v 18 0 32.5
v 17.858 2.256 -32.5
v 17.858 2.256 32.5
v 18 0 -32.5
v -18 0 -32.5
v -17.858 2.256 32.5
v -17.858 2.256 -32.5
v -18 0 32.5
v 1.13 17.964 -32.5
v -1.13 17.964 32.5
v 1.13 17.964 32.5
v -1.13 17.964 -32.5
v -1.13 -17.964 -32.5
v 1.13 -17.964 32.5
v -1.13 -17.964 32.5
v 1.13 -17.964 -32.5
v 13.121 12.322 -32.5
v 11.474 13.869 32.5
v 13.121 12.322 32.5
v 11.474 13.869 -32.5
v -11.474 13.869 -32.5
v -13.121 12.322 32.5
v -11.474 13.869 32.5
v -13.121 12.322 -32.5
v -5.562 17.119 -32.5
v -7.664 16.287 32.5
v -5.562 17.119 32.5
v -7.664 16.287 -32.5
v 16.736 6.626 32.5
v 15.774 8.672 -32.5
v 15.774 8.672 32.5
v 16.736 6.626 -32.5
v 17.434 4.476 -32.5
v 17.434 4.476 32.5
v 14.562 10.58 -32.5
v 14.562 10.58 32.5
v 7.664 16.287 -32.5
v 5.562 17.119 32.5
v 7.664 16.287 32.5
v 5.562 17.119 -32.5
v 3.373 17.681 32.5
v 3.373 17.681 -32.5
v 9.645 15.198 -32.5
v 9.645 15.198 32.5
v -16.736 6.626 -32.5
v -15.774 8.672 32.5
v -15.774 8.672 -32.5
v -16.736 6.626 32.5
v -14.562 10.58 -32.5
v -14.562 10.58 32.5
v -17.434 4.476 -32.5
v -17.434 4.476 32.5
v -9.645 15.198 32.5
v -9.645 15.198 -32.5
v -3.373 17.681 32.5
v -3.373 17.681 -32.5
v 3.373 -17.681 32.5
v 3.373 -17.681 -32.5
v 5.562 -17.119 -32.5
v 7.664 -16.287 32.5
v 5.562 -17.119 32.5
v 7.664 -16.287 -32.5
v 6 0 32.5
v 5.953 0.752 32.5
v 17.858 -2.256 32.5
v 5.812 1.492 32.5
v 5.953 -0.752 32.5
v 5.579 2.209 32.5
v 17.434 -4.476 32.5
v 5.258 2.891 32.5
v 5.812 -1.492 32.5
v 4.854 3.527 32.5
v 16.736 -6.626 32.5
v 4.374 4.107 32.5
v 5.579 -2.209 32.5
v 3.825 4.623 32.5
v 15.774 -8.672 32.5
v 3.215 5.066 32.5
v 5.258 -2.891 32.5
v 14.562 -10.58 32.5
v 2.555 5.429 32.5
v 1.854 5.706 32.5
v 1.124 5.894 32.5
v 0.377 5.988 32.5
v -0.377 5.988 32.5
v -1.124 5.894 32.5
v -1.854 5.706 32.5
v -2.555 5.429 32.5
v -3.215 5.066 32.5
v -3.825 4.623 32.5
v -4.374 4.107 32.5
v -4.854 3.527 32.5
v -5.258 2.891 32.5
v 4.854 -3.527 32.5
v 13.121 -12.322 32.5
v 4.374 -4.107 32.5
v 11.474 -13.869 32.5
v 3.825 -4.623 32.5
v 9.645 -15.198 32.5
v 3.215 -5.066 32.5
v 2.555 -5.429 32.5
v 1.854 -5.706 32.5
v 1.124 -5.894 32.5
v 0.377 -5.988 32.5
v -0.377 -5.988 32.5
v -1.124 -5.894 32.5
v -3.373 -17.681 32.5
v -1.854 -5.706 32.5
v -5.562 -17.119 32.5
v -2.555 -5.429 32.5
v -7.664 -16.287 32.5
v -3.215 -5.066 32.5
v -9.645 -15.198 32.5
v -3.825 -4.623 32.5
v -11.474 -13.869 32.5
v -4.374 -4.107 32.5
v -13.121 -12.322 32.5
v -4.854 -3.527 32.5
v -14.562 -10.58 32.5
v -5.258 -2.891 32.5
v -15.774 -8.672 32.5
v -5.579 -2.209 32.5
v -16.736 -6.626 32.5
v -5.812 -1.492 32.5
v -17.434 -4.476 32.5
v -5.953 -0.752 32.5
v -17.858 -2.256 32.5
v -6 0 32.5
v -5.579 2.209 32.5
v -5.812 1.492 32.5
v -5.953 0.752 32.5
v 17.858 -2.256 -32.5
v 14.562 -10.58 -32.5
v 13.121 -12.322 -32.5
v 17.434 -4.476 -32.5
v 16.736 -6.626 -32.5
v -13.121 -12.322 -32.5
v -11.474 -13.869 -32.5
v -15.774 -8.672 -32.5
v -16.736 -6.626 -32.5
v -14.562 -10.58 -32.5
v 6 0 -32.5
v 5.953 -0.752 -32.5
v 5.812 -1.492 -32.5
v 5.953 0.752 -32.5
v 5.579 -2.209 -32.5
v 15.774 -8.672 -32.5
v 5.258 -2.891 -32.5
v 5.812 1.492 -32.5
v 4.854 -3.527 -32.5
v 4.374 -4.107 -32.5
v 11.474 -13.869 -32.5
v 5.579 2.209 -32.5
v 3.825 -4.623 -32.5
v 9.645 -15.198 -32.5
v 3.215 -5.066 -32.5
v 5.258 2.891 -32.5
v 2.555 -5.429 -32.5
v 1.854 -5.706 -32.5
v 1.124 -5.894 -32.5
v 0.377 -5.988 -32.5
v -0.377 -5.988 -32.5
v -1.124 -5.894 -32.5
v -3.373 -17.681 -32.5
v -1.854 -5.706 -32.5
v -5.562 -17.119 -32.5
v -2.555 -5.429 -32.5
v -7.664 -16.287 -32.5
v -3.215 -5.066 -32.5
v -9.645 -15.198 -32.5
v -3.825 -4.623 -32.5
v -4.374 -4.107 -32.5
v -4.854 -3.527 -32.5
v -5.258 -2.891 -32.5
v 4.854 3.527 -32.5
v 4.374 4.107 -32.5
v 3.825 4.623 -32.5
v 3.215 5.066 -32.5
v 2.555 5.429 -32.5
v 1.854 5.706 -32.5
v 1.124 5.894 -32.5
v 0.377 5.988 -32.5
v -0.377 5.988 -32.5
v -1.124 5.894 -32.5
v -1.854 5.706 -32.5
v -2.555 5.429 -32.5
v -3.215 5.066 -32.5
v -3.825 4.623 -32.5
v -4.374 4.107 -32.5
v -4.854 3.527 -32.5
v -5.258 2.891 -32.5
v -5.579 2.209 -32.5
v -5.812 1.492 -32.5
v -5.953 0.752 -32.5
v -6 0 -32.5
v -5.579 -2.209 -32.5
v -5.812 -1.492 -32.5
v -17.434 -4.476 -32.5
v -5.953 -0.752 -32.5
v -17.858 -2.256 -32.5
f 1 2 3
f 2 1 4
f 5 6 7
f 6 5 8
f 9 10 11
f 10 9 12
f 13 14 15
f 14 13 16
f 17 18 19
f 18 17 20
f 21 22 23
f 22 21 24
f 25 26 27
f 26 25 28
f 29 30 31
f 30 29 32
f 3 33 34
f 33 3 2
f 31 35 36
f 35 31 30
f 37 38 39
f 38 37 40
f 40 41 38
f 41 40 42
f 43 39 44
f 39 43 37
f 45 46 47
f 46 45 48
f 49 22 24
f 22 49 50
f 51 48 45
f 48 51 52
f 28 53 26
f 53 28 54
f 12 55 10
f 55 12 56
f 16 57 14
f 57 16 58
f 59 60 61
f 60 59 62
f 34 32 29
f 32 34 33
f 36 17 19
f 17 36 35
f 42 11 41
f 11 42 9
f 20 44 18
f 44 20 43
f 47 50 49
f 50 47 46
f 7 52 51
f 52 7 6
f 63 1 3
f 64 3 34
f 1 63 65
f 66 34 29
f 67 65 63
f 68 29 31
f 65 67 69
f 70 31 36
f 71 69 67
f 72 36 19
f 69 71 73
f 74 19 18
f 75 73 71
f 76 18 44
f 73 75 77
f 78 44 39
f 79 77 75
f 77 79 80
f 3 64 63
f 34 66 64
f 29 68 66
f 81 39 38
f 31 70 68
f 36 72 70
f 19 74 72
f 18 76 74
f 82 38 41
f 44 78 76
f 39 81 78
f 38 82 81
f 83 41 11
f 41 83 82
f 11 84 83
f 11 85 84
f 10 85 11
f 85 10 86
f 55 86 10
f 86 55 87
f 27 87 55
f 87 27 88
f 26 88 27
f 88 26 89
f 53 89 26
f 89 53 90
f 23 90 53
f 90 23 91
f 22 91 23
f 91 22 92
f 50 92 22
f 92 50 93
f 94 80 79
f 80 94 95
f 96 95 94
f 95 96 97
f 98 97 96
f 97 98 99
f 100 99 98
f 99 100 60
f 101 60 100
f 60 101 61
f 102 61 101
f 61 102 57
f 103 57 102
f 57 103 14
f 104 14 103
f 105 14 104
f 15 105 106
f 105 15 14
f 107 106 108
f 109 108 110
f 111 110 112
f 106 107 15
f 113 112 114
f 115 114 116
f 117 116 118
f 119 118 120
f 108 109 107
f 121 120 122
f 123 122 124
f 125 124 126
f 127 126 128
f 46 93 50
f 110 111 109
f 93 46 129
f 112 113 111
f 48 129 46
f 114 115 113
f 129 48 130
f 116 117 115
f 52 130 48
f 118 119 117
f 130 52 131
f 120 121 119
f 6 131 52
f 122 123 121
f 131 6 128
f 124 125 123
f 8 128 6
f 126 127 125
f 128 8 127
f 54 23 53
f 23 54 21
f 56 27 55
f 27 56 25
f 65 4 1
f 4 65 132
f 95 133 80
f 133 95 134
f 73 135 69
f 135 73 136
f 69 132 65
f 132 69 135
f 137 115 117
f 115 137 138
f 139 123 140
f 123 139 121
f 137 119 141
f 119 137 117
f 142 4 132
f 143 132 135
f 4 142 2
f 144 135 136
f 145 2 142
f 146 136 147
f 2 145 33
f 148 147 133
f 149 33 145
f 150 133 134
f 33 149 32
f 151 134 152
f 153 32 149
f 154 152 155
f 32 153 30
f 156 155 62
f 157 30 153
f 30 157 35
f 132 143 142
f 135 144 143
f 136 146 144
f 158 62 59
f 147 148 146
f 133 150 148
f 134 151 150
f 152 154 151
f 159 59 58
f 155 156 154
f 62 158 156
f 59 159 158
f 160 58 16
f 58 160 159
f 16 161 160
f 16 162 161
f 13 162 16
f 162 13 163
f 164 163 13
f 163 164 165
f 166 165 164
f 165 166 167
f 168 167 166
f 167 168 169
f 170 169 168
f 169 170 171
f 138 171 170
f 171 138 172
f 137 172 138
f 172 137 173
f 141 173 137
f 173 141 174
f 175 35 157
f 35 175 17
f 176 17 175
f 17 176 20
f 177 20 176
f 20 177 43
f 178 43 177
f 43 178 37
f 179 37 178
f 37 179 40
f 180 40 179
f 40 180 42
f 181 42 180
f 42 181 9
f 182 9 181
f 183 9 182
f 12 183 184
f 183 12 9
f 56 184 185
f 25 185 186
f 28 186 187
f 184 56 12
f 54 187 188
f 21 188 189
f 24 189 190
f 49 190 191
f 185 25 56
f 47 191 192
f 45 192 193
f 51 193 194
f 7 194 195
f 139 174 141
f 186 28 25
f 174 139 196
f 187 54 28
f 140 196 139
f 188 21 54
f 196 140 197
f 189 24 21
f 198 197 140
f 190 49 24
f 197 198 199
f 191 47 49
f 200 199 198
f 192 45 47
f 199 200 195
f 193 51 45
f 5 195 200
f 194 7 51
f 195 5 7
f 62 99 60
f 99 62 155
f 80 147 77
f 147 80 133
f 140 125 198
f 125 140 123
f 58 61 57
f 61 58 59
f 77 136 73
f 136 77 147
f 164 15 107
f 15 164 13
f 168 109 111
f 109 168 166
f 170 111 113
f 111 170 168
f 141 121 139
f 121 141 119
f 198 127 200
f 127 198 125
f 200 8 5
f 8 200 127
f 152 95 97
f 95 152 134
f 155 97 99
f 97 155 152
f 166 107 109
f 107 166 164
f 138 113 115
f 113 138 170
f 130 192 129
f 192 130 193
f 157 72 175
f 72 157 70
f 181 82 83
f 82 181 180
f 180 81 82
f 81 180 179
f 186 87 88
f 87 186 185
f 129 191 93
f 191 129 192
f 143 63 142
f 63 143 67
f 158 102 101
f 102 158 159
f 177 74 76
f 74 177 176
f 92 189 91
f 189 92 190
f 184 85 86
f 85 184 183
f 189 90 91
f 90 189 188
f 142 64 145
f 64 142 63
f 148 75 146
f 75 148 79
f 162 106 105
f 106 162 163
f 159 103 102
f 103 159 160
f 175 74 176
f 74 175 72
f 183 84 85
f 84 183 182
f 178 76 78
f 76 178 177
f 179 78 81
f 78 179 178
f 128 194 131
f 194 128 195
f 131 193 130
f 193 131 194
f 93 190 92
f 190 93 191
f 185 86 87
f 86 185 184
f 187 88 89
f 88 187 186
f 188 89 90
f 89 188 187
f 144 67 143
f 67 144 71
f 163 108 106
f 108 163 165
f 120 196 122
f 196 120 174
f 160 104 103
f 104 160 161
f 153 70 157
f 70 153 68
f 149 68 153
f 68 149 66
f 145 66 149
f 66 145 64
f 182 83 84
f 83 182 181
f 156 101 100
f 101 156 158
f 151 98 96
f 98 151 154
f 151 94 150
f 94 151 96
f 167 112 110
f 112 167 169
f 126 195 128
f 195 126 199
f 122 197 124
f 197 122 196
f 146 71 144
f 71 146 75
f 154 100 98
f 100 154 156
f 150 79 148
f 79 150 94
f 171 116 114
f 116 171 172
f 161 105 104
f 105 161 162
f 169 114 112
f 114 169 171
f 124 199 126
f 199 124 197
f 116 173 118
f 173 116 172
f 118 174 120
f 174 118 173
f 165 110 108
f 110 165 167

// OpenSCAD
$fn = 50;


difference() {
	union() {
		translate(v = [0, 0, -32.5000000000]) {
			cylinder(h = 65, r = 18.0000000000);
		}
	}
	union() {
		translate(v = [0, 0, -100.0000000000]) {
			cylinder(h = 200, r = 6);
		}
	}
}
